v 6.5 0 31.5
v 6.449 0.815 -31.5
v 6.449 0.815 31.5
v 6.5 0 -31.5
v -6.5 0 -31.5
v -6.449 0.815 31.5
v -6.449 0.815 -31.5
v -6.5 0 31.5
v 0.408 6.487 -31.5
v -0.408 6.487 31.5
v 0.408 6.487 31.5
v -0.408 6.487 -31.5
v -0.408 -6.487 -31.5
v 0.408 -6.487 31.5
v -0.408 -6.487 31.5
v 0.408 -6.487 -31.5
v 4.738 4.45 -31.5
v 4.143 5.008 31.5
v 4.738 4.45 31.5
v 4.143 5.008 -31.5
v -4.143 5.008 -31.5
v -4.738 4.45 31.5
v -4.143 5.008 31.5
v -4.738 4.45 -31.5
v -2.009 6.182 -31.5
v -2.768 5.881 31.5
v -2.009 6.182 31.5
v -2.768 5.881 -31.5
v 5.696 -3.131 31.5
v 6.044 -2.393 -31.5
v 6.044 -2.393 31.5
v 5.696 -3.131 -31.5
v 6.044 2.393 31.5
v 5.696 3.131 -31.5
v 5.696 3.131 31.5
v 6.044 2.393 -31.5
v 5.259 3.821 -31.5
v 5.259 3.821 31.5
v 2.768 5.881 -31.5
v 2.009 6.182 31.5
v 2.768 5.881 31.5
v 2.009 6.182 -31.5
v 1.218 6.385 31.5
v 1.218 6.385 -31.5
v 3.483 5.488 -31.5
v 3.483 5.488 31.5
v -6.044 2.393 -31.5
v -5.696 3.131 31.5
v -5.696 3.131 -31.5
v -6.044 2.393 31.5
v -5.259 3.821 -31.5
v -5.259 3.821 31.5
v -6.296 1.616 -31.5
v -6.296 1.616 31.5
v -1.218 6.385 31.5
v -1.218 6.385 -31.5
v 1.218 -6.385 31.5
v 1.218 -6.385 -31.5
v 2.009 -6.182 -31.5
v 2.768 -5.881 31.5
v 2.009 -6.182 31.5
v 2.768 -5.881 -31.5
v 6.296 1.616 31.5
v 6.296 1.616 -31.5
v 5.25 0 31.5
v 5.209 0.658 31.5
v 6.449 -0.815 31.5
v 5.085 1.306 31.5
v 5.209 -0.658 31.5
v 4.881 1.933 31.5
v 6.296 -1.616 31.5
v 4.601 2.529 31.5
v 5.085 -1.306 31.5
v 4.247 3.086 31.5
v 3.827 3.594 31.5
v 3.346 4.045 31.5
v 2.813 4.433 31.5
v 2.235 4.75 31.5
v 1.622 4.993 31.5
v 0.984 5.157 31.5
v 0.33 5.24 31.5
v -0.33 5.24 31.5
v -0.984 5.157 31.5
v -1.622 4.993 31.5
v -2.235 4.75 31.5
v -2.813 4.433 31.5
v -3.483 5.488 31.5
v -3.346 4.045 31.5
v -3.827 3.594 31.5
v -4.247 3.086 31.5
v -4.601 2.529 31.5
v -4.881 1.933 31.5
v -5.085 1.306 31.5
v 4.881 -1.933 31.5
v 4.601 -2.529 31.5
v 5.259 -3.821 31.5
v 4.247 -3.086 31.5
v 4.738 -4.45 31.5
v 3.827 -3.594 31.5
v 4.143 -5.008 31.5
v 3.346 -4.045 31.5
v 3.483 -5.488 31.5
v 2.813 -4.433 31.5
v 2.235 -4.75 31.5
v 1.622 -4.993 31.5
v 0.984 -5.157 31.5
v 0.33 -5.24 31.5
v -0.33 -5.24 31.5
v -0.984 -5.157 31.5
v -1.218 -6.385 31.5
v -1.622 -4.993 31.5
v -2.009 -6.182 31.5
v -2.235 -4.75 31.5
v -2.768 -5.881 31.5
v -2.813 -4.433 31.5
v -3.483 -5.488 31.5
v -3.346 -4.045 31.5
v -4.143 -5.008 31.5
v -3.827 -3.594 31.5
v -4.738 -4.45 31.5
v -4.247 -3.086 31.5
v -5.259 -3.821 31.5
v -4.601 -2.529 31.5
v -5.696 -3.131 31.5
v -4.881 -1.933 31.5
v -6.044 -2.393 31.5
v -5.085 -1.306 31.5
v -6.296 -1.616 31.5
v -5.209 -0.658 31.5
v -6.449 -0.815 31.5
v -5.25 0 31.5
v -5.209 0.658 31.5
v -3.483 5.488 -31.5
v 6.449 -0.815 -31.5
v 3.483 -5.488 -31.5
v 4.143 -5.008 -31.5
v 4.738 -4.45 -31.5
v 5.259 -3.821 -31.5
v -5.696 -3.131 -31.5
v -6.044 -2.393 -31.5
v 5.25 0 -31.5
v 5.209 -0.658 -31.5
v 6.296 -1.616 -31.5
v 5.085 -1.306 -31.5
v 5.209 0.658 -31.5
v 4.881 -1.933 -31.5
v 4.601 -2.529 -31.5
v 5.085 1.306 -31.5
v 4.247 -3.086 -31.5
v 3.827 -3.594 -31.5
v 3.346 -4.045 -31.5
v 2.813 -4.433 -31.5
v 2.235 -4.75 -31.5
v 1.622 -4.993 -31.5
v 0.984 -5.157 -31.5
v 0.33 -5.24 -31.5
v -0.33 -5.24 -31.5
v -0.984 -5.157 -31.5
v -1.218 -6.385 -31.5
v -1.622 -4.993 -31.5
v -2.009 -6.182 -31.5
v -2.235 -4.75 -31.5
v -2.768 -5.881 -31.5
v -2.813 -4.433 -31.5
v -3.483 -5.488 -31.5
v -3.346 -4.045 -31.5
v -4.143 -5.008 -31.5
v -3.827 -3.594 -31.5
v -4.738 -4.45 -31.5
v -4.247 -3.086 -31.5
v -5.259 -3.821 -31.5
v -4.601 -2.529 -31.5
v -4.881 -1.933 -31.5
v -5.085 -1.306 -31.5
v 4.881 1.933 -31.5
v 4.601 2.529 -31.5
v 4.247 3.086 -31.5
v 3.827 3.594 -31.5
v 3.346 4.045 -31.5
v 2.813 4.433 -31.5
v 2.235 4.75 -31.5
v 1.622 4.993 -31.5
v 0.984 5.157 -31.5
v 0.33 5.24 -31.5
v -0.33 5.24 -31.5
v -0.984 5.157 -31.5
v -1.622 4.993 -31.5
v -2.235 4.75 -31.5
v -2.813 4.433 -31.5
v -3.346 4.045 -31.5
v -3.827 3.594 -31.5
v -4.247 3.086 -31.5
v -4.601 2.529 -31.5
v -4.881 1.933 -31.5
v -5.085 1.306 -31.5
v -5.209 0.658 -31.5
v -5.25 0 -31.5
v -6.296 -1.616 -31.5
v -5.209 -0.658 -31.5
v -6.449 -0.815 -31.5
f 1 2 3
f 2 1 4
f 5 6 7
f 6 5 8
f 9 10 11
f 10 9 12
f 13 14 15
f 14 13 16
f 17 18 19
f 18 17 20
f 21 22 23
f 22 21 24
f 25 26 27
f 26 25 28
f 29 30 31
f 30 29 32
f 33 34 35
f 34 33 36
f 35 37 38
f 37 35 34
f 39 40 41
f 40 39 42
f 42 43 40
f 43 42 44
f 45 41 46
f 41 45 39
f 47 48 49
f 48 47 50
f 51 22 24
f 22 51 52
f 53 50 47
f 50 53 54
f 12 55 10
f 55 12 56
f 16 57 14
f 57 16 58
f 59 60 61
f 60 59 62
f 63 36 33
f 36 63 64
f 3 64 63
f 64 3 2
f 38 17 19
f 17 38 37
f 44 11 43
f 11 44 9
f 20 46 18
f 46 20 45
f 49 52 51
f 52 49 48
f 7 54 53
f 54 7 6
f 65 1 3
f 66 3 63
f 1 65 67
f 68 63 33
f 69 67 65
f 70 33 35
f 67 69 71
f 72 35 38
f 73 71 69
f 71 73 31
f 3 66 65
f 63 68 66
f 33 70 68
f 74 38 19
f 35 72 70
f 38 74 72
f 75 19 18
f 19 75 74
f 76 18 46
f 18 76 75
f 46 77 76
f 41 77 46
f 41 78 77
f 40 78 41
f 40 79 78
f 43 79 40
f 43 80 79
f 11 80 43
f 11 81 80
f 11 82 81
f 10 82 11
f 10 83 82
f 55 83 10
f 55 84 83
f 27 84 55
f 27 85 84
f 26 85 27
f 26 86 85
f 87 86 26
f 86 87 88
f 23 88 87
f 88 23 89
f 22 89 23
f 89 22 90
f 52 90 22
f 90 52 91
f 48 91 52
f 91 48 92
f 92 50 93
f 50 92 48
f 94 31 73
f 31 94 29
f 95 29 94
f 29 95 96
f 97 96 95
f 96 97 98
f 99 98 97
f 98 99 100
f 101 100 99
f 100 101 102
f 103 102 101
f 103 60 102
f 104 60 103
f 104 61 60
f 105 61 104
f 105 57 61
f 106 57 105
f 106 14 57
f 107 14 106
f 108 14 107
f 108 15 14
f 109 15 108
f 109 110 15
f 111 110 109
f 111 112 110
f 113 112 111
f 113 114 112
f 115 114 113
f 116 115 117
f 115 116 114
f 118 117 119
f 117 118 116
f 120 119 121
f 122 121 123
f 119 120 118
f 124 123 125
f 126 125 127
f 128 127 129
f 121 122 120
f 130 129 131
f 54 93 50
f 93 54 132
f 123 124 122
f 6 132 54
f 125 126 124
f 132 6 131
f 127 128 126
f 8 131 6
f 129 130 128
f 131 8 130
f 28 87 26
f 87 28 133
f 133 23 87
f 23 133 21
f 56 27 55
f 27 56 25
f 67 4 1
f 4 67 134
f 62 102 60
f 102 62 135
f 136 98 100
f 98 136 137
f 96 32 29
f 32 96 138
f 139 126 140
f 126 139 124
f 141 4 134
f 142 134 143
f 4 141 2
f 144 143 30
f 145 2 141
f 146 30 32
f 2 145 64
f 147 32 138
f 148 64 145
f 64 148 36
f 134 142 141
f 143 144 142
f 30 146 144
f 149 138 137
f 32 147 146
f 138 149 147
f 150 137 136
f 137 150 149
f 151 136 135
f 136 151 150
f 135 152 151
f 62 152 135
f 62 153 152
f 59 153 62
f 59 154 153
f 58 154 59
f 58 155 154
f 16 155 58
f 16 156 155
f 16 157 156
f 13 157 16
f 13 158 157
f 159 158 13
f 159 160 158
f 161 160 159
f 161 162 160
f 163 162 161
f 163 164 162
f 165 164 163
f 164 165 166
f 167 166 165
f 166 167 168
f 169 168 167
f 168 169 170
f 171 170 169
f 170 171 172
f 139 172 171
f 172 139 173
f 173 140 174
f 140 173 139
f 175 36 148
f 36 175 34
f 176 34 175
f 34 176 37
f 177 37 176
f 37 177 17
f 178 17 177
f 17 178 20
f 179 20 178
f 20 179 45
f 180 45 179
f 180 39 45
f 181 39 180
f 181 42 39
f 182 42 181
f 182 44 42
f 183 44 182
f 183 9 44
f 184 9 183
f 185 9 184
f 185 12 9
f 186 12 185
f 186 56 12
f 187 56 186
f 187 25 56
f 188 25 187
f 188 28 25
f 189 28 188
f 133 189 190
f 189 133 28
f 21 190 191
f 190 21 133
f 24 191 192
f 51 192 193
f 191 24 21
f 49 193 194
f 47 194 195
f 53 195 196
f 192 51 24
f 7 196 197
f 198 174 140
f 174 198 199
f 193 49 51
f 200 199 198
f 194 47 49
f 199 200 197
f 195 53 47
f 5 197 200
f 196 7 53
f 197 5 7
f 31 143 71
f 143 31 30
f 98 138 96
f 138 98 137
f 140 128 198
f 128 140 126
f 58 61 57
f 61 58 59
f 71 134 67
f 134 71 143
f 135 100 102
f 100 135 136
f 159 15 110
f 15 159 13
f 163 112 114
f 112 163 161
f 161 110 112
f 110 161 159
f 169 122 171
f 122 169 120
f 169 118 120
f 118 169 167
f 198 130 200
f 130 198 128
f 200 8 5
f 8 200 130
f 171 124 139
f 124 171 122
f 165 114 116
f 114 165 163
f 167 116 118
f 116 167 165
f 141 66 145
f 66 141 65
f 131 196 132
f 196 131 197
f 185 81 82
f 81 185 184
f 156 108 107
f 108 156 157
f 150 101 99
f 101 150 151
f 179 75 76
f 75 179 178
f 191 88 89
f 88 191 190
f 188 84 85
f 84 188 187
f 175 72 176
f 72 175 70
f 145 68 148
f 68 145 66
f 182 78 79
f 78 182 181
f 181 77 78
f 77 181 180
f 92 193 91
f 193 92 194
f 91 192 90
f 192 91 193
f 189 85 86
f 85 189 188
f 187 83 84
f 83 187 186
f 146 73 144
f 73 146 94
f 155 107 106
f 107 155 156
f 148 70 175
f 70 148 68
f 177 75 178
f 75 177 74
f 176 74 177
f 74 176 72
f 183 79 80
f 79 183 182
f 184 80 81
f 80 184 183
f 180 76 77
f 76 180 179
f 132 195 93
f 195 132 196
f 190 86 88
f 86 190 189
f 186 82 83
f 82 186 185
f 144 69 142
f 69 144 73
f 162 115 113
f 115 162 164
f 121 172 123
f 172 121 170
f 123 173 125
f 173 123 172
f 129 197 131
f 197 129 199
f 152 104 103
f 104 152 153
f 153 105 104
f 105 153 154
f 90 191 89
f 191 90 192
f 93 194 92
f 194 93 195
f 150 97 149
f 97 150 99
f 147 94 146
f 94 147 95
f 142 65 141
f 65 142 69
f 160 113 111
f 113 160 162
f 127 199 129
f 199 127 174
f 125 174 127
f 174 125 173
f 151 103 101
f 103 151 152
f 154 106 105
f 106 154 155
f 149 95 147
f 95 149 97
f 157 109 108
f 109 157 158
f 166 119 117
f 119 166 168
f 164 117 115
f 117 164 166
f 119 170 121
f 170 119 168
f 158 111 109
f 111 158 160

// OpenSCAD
$fn = 50;


difference() {
	union() {
		translate(v = [0, 0, -31.5000000000]) {
			cylinder(h = 63, r = 6.5000000000);
		}
	}
	union() {
		translate(v = [0, 0, -100.0000000000]) {
			cylinder(h = 200, r = 5.2500000000);
		}
	}
}
